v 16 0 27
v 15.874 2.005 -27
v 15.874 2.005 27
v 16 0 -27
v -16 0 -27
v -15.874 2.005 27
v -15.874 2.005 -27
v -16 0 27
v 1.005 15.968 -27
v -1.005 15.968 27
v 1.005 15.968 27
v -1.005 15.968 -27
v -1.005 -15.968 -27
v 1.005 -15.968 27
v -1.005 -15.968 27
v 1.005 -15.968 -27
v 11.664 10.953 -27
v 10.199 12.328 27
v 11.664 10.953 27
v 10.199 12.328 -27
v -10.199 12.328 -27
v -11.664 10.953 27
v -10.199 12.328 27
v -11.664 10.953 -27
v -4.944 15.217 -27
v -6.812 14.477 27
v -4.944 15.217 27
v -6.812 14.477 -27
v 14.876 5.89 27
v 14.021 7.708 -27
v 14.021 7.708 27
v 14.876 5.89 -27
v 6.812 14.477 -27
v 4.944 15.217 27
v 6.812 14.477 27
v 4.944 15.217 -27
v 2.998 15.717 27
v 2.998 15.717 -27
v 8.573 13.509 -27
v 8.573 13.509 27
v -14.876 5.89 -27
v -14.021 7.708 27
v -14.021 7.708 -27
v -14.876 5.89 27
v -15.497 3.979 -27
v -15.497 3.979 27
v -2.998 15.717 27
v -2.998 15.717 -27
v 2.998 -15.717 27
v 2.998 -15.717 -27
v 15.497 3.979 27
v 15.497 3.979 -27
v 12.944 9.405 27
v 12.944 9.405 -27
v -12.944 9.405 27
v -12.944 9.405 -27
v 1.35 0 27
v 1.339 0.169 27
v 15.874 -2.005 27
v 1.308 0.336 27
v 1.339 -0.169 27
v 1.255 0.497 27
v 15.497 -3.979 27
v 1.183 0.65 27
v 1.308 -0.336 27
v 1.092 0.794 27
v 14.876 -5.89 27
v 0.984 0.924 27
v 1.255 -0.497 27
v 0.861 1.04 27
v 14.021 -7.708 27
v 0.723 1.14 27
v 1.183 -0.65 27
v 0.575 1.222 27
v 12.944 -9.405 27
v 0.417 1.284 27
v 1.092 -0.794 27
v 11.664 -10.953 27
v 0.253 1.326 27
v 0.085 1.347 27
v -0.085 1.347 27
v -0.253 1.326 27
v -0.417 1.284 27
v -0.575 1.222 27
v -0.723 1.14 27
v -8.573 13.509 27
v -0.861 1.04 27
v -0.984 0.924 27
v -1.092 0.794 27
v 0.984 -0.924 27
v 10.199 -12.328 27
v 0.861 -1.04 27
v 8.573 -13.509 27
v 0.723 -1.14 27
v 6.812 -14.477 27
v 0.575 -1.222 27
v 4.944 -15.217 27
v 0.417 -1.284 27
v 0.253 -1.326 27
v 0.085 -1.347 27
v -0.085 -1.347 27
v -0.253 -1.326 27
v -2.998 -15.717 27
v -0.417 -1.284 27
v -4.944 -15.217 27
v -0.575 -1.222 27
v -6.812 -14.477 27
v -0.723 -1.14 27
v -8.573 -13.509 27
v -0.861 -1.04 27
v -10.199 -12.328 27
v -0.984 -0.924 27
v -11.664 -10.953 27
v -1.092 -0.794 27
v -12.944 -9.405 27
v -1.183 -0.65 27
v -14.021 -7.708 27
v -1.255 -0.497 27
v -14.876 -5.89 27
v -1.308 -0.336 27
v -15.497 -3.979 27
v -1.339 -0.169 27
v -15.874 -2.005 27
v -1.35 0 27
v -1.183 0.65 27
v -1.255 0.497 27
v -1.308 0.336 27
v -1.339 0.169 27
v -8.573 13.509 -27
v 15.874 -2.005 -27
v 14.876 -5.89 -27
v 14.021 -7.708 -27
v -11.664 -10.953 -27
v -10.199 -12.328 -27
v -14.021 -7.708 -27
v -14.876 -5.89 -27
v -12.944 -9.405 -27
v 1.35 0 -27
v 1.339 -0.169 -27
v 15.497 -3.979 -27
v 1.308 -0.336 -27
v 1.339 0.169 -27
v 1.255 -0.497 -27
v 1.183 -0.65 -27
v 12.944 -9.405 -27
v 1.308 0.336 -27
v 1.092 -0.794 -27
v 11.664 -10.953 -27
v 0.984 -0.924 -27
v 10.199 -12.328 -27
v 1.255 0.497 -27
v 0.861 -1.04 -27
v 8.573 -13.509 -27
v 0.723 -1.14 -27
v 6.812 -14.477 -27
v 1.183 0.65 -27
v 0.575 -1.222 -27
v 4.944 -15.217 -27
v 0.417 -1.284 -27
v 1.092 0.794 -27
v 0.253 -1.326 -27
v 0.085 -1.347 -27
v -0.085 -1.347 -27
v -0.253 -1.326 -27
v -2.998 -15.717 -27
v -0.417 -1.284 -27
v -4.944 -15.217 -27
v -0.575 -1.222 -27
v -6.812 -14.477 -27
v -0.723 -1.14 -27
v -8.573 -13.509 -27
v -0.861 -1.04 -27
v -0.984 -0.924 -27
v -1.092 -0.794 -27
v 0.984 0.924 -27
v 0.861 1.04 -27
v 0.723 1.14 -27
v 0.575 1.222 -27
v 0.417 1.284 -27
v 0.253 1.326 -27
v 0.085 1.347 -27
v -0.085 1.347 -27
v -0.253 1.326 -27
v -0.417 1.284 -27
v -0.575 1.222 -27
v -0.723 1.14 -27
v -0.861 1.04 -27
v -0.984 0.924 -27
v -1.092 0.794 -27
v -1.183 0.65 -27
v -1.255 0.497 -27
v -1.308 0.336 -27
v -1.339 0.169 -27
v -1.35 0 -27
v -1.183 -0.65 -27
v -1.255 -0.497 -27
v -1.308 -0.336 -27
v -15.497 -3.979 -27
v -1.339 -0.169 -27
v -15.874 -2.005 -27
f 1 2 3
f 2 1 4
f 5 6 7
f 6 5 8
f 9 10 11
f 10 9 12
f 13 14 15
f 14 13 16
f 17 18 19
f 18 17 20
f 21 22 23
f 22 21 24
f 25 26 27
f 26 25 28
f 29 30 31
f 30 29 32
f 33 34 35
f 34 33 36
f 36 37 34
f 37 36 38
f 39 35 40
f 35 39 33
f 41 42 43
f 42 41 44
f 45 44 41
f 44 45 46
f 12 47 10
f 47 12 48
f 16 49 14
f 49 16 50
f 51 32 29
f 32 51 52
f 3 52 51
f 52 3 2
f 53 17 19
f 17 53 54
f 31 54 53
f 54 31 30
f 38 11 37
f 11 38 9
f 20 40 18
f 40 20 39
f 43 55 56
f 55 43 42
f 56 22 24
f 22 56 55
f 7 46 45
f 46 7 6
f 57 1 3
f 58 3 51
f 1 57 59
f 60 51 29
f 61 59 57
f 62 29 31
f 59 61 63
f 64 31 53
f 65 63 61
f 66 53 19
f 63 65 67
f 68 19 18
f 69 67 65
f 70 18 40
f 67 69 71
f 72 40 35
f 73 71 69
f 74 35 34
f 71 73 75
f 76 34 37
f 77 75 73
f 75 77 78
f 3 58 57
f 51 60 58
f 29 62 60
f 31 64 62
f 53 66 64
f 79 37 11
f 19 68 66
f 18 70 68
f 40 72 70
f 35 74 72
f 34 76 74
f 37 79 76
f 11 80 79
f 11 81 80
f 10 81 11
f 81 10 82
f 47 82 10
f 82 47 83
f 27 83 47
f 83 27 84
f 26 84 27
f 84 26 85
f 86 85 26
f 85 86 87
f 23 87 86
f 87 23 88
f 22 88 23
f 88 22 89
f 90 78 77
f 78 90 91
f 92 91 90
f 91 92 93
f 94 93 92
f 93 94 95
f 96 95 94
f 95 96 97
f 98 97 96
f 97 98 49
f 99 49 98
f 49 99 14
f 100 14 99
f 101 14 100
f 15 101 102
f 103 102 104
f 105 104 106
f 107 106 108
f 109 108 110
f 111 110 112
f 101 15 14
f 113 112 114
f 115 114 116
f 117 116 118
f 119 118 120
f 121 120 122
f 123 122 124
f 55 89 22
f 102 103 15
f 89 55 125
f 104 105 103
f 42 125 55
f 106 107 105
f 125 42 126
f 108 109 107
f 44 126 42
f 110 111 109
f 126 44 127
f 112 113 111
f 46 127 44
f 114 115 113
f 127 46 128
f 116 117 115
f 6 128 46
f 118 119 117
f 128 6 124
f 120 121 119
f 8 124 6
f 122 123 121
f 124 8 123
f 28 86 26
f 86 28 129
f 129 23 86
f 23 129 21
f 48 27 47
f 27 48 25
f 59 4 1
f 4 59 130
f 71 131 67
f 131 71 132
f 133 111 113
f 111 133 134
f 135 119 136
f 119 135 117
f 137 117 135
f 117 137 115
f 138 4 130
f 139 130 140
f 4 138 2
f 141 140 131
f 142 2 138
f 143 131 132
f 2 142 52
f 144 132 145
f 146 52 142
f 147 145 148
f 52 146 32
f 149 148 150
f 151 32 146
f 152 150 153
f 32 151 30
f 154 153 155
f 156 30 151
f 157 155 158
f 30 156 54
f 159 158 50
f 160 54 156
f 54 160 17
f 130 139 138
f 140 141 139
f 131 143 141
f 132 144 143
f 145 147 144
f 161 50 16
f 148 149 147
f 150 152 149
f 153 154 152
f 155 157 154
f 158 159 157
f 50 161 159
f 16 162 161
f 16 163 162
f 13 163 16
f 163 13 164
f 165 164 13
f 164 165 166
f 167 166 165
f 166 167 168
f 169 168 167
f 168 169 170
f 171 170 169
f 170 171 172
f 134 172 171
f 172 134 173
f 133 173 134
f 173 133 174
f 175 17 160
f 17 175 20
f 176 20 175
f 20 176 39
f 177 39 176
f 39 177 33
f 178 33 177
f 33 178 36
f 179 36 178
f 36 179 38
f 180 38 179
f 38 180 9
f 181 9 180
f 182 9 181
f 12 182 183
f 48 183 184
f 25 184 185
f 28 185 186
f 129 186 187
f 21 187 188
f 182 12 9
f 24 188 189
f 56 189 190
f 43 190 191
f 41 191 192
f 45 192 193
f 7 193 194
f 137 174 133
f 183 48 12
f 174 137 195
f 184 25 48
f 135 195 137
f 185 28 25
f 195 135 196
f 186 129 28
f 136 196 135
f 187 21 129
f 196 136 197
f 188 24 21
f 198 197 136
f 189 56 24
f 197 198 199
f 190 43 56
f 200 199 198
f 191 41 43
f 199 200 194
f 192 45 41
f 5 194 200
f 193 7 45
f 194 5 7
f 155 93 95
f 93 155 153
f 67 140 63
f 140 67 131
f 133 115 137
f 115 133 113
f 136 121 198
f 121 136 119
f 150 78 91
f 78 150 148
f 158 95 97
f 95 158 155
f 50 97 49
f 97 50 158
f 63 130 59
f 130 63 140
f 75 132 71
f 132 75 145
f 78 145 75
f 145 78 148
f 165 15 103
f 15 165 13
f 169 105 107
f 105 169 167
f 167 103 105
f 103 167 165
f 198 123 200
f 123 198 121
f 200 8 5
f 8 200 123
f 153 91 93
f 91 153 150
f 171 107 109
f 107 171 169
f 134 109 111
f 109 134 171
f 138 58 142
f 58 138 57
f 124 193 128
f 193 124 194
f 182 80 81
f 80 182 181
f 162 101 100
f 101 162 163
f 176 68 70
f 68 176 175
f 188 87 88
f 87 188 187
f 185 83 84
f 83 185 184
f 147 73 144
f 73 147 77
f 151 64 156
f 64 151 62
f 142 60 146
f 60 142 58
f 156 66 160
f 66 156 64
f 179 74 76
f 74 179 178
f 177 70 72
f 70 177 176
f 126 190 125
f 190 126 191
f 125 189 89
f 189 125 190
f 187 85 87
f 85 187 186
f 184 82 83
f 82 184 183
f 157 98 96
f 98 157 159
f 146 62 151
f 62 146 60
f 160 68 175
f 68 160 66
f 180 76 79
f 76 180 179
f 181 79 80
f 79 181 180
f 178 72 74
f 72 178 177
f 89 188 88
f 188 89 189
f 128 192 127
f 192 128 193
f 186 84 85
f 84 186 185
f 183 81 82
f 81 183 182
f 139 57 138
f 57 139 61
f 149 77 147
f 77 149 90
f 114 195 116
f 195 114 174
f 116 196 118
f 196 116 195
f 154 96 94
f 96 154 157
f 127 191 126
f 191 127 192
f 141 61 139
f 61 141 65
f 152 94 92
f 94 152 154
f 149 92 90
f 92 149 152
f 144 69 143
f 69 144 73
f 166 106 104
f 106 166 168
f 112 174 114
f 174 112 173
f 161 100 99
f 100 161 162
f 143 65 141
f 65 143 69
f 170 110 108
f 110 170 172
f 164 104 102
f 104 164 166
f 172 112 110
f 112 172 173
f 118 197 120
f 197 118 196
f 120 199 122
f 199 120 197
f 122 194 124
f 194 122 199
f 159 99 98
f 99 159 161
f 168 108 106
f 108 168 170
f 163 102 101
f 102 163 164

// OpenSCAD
$fn = 50;


difference() {
	union() {
		translate(v = [0, 0, -27.0000000000]) {
			cylinder(h = 54, r = 16.0000000000);
		}
	}
	union() {
		translate(v = [0, 0, -100.0000000000]) {
			cylinder(h = 200, r = 1.3500000000);
		}
	}
}
